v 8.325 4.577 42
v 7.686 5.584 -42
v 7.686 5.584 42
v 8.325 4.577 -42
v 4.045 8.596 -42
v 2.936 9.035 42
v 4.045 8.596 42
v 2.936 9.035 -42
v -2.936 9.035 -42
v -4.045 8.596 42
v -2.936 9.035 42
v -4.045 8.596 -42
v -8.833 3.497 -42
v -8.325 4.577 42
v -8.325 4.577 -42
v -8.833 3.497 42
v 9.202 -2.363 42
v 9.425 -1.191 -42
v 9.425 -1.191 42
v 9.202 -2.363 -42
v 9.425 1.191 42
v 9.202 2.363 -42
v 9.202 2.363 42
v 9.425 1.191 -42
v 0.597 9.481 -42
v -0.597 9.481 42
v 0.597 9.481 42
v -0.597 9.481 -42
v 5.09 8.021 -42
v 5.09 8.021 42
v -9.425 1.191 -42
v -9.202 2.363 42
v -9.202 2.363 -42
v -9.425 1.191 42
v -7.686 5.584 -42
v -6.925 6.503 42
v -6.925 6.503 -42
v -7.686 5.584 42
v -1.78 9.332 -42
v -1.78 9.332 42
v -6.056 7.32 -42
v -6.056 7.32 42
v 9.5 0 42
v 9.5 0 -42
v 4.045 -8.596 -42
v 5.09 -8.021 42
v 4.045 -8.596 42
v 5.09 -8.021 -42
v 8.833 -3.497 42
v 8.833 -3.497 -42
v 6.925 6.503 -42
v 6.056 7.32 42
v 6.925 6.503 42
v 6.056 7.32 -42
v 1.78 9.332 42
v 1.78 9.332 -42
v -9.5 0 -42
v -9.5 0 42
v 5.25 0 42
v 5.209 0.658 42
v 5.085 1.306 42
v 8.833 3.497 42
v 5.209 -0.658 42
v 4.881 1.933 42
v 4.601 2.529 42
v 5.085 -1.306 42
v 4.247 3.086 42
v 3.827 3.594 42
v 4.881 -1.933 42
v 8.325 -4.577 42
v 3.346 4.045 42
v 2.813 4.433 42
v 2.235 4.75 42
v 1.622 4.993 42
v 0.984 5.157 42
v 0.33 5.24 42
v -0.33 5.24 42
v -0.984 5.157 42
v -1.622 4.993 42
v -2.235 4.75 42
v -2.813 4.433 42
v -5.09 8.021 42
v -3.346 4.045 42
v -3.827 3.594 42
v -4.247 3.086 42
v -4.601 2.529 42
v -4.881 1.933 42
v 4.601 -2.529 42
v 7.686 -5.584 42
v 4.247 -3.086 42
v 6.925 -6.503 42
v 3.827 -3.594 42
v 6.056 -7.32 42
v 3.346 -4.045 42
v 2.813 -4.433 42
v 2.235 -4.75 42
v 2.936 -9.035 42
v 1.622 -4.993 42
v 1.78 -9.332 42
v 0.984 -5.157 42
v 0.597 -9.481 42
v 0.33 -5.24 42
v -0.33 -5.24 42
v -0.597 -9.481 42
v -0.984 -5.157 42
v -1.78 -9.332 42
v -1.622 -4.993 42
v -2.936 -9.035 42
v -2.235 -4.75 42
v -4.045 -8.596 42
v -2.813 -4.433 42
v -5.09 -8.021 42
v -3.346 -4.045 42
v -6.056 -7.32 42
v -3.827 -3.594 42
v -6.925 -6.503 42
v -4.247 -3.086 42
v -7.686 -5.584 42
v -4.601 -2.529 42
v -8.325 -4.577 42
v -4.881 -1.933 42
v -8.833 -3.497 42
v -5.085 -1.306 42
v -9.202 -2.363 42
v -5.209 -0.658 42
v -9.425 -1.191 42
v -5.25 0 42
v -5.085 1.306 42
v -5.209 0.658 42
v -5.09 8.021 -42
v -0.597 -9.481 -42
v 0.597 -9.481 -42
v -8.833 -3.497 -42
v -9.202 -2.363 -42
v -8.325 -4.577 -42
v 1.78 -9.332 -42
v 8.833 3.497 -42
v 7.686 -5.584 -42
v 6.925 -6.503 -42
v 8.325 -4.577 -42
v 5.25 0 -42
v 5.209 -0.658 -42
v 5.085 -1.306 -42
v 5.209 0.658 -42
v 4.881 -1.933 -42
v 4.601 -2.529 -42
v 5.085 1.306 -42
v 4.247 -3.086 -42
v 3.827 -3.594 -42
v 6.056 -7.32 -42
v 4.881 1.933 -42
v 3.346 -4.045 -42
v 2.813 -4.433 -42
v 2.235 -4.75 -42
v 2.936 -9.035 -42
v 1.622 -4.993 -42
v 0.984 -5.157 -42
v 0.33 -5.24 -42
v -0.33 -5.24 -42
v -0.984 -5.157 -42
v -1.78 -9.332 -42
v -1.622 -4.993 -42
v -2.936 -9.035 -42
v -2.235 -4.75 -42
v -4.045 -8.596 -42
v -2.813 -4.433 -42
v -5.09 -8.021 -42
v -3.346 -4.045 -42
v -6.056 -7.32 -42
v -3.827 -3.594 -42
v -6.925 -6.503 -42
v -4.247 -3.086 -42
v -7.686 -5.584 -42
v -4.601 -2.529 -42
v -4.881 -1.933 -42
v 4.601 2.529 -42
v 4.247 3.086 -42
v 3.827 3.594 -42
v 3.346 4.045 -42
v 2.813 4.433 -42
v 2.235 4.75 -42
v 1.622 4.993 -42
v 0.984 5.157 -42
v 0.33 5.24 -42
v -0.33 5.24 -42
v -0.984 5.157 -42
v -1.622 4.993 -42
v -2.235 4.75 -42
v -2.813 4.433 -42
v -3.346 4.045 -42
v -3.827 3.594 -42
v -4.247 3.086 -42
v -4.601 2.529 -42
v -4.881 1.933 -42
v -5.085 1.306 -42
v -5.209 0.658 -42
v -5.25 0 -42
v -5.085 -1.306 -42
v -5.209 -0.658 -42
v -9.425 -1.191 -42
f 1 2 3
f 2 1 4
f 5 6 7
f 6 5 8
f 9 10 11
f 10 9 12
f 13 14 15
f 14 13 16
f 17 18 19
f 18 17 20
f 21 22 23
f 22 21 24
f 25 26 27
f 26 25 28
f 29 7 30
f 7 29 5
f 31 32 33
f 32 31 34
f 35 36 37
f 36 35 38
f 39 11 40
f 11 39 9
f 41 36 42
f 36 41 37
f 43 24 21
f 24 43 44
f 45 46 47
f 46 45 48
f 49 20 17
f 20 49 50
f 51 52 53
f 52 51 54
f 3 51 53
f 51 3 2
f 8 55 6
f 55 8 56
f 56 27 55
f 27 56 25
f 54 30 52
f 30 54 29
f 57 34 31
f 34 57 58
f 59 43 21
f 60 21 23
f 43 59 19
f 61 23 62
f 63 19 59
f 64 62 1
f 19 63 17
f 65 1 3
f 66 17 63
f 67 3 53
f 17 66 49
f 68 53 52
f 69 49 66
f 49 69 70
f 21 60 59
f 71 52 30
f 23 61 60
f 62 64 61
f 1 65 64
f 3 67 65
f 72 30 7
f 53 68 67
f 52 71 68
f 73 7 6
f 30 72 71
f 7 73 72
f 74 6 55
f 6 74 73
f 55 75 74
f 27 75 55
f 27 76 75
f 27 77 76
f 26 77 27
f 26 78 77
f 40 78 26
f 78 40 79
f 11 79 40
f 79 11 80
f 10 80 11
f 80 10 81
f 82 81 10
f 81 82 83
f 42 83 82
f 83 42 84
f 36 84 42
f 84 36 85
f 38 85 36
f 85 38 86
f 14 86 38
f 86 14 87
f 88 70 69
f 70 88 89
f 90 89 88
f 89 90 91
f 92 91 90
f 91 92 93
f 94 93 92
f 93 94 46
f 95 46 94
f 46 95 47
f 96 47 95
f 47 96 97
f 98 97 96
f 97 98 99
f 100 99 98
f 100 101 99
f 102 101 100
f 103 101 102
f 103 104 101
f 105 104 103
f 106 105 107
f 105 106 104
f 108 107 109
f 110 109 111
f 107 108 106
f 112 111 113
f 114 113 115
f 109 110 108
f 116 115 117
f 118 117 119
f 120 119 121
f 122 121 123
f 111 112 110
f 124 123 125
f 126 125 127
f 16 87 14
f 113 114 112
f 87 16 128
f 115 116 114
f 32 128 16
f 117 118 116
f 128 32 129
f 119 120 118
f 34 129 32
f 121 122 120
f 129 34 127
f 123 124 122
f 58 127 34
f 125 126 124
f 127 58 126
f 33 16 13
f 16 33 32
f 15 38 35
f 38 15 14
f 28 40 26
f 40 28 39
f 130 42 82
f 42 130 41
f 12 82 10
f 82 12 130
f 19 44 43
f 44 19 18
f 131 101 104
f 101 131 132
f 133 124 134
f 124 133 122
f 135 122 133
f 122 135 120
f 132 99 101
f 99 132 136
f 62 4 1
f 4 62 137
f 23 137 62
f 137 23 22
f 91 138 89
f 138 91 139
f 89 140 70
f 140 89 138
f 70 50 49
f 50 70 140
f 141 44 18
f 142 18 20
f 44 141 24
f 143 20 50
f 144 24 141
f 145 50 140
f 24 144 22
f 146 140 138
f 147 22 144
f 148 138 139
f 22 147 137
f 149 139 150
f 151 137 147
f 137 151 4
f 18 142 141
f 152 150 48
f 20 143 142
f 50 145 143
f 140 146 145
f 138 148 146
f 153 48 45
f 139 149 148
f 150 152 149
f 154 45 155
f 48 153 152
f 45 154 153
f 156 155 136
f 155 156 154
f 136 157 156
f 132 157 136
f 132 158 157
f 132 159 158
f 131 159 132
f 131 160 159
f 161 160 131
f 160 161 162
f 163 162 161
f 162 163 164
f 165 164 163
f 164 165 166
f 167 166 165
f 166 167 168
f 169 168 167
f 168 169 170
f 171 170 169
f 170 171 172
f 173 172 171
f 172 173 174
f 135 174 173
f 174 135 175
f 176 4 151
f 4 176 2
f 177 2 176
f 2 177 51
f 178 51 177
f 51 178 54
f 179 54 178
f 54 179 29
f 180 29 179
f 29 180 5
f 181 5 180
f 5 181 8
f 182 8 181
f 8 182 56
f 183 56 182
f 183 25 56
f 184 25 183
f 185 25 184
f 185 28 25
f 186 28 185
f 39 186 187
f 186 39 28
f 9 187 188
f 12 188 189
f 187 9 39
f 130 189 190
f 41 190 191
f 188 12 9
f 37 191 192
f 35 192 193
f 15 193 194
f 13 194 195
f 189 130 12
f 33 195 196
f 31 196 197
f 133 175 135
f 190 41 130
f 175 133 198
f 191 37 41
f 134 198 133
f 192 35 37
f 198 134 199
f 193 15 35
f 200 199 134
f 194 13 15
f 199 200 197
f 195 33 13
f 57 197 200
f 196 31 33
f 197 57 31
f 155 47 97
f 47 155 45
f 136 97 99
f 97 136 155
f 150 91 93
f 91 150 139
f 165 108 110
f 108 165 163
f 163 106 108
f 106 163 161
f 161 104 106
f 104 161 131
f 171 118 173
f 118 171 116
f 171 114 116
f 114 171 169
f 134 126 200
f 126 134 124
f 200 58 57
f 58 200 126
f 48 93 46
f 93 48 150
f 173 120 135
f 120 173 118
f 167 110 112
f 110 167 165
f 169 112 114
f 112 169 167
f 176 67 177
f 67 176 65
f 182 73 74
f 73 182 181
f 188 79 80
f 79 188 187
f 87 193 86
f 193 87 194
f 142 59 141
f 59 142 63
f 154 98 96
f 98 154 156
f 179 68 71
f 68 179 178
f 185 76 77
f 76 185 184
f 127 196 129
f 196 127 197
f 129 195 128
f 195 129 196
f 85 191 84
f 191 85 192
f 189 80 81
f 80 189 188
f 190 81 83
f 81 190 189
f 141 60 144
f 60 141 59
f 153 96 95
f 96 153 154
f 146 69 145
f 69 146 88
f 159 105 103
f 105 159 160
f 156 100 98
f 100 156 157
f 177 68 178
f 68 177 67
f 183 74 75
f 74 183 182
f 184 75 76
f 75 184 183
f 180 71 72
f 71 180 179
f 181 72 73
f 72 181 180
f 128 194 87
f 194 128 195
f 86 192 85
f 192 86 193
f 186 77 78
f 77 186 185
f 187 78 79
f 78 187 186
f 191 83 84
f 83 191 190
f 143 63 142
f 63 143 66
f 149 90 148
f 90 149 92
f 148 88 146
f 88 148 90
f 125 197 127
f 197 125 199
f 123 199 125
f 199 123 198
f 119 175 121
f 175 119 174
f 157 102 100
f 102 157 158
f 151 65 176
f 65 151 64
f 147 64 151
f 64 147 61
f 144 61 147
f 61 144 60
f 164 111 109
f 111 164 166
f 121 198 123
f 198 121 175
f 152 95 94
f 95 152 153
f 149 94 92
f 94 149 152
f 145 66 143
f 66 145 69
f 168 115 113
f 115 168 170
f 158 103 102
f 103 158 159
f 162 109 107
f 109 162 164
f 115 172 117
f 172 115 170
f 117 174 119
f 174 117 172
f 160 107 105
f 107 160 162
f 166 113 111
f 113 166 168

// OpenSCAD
$fn = 50;


difference() {
	union() {
		translate(v = [0, 0, -42.0000000000]) {
			cylinder(h = 84, r = 9.5000000000);
		}
	}
	union() {
		translate(v = [0, 0, -100.0000000000]) {
			cylinder(h = 200, r = 5.2500000000);
		}
	}
}
